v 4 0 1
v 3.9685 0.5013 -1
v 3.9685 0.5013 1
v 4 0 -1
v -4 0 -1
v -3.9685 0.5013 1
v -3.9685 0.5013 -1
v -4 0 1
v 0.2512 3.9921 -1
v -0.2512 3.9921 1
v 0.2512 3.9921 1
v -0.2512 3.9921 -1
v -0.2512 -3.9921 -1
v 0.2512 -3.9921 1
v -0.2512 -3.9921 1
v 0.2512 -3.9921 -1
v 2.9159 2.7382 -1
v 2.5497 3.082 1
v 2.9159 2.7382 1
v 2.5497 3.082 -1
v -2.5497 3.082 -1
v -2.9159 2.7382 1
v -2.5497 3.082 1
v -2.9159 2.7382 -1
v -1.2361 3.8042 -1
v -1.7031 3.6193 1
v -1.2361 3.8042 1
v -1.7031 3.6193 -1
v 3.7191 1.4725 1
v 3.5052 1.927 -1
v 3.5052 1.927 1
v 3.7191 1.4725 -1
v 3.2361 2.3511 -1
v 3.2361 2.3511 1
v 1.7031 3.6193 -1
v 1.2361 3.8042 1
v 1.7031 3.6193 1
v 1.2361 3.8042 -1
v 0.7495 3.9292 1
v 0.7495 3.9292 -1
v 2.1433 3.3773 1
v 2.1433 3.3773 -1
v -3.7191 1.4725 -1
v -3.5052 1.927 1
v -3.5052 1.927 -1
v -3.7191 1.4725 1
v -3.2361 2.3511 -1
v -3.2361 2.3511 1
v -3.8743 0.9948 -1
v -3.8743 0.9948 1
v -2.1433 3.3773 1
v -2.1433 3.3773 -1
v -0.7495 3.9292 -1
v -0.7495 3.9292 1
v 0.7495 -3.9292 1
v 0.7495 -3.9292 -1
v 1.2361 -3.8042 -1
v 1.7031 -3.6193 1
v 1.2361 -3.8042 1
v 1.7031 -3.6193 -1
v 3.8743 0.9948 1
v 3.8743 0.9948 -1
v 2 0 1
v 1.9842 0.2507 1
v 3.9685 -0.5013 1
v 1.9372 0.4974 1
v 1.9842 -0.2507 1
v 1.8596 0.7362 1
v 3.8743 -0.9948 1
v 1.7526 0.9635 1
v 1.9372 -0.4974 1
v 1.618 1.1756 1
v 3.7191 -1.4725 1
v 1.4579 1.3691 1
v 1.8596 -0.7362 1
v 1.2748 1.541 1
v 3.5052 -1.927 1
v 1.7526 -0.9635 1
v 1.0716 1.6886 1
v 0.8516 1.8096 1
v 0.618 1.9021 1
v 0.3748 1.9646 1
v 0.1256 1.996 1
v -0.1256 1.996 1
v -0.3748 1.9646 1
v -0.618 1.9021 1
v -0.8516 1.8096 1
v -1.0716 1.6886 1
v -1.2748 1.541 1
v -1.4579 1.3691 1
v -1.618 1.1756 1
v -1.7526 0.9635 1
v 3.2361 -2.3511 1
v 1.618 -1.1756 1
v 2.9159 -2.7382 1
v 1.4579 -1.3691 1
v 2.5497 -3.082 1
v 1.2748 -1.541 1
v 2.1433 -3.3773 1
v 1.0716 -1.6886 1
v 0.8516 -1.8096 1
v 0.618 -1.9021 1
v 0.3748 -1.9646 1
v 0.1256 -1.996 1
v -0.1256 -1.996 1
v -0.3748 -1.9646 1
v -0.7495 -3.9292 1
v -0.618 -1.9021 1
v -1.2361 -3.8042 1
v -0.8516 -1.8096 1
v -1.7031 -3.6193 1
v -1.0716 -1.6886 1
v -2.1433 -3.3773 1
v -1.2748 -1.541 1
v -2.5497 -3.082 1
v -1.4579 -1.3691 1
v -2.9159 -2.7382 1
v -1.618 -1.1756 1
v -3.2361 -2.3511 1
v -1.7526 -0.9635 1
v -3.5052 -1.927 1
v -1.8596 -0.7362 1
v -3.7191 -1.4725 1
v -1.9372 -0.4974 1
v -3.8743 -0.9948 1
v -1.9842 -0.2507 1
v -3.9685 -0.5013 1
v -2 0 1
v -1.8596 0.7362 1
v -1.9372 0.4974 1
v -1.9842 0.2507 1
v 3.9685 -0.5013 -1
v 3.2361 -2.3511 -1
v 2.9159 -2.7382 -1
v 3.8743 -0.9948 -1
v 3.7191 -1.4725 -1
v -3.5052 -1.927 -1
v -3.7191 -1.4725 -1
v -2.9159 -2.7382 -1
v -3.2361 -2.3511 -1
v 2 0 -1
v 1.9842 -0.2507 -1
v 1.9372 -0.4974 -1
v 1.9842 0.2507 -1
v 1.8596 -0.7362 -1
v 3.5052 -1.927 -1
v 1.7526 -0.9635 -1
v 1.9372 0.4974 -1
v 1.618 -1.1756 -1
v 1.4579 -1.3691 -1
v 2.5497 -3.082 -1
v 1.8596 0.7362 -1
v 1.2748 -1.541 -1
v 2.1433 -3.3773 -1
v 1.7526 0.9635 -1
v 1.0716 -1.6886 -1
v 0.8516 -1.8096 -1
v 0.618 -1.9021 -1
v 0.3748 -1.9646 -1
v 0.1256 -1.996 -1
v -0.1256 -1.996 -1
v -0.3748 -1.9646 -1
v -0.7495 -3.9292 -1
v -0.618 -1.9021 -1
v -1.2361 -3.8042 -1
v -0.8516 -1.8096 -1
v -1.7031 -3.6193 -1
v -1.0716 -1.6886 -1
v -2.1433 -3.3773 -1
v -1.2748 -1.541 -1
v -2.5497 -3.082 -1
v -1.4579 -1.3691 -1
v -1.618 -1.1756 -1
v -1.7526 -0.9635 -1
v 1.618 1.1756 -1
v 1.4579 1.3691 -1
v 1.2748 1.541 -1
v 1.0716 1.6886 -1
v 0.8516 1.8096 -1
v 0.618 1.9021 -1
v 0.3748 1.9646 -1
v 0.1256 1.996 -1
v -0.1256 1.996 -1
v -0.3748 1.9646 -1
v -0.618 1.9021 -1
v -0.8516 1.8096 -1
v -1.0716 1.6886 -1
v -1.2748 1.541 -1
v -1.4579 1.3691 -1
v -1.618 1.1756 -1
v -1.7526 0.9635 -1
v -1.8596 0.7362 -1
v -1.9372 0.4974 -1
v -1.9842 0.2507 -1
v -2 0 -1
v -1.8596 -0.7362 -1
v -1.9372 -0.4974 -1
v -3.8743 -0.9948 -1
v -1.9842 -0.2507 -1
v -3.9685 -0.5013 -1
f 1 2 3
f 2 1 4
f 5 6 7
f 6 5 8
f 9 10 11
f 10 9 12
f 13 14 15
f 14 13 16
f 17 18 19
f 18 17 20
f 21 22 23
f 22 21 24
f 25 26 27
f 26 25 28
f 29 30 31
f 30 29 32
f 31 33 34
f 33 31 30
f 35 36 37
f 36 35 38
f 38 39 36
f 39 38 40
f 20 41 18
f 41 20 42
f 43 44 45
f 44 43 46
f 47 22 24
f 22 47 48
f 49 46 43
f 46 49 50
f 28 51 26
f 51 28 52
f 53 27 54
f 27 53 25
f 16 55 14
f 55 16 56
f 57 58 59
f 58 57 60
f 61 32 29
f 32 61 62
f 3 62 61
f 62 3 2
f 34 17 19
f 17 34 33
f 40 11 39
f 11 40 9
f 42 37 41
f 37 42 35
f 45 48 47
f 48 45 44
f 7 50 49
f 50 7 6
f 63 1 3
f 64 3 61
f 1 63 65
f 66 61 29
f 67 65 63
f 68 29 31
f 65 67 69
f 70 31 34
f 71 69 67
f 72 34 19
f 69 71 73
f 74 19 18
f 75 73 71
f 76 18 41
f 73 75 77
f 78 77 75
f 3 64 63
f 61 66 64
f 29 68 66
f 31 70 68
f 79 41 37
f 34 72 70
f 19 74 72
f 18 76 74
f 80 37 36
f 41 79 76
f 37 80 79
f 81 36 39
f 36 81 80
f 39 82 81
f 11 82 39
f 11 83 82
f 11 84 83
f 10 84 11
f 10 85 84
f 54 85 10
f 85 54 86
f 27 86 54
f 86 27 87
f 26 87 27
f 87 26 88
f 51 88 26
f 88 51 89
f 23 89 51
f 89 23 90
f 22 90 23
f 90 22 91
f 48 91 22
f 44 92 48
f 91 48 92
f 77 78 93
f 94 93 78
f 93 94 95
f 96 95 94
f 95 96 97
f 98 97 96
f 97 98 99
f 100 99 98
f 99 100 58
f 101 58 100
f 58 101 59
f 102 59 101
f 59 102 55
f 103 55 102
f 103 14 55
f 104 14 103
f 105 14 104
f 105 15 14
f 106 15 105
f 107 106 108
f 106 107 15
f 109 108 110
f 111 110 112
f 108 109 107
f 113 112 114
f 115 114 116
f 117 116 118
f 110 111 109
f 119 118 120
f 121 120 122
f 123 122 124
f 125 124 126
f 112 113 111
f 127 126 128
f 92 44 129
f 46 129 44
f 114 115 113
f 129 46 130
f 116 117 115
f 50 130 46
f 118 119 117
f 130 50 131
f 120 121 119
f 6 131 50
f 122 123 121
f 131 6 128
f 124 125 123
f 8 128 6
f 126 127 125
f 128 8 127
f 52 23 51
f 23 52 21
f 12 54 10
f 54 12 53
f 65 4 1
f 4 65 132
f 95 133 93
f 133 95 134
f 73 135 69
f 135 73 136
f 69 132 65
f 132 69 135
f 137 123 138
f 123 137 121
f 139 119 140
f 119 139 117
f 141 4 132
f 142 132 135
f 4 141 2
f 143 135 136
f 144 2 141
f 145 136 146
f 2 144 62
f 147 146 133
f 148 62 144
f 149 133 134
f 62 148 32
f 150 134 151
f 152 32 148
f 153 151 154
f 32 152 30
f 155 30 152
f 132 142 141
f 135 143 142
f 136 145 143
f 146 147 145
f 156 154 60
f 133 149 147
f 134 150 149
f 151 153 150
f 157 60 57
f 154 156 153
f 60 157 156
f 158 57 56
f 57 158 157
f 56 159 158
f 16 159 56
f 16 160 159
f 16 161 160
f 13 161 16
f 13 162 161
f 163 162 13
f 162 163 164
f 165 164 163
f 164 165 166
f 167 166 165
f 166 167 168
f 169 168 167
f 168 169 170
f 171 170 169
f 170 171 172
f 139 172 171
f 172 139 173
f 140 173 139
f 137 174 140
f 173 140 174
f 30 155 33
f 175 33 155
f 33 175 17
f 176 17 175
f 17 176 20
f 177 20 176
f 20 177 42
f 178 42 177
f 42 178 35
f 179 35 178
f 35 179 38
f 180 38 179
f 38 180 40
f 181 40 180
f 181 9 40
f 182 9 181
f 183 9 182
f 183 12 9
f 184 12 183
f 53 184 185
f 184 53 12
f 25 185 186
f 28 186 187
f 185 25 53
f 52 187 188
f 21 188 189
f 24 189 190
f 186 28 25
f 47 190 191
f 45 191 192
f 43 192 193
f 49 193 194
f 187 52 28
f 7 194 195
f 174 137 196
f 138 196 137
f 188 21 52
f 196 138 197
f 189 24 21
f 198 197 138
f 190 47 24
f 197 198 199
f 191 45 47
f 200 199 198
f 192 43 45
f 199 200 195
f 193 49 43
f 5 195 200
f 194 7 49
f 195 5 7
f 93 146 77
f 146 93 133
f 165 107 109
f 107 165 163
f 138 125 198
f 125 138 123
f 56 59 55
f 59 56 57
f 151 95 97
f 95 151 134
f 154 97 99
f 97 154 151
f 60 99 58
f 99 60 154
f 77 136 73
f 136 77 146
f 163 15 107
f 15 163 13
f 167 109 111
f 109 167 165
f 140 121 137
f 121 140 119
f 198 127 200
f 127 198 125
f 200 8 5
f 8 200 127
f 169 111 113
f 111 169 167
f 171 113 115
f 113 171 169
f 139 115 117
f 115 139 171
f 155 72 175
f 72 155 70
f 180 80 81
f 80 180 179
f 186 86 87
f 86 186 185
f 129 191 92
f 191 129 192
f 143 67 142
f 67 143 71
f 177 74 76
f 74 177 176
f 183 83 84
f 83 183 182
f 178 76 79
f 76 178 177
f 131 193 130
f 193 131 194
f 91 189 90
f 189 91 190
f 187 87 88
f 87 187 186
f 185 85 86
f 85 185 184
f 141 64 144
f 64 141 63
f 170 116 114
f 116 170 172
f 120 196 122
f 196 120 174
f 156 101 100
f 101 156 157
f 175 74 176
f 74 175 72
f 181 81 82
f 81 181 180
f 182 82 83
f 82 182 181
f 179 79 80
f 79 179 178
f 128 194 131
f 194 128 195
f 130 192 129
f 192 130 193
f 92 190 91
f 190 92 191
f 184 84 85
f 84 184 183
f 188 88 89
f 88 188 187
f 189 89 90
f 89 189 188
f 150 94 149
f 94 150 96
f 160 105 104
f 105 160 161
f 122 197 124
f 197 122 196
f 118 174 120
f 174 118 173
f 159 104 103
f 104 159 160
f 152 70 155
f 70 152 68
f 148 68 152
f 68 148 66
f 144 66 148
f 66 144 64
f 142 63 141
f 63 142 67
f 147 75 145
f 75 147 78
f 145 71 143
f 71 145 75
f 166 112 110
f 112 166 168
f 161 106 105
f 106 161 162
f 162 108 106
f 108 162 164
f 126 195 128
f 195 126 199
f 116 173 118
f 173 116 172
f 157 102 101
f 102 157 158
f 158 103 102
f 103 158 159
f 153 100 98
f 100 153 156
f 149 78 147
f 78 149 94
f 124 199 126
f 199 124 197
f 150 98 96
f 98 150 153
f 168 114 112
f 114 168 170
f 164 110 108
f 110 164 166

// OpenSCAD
$fn = 50;


difference() {
	union() {
		translate(v = [0, 0, -1.0000000000]) {
			cylinder(h = 2, r = 4.0000000000);
		}
	}
	union() {
		translate(v = [0, 0, -100.0000000000]) {
			cylinder(h = 200, r = 2.0000000000);
		}
	}
}
